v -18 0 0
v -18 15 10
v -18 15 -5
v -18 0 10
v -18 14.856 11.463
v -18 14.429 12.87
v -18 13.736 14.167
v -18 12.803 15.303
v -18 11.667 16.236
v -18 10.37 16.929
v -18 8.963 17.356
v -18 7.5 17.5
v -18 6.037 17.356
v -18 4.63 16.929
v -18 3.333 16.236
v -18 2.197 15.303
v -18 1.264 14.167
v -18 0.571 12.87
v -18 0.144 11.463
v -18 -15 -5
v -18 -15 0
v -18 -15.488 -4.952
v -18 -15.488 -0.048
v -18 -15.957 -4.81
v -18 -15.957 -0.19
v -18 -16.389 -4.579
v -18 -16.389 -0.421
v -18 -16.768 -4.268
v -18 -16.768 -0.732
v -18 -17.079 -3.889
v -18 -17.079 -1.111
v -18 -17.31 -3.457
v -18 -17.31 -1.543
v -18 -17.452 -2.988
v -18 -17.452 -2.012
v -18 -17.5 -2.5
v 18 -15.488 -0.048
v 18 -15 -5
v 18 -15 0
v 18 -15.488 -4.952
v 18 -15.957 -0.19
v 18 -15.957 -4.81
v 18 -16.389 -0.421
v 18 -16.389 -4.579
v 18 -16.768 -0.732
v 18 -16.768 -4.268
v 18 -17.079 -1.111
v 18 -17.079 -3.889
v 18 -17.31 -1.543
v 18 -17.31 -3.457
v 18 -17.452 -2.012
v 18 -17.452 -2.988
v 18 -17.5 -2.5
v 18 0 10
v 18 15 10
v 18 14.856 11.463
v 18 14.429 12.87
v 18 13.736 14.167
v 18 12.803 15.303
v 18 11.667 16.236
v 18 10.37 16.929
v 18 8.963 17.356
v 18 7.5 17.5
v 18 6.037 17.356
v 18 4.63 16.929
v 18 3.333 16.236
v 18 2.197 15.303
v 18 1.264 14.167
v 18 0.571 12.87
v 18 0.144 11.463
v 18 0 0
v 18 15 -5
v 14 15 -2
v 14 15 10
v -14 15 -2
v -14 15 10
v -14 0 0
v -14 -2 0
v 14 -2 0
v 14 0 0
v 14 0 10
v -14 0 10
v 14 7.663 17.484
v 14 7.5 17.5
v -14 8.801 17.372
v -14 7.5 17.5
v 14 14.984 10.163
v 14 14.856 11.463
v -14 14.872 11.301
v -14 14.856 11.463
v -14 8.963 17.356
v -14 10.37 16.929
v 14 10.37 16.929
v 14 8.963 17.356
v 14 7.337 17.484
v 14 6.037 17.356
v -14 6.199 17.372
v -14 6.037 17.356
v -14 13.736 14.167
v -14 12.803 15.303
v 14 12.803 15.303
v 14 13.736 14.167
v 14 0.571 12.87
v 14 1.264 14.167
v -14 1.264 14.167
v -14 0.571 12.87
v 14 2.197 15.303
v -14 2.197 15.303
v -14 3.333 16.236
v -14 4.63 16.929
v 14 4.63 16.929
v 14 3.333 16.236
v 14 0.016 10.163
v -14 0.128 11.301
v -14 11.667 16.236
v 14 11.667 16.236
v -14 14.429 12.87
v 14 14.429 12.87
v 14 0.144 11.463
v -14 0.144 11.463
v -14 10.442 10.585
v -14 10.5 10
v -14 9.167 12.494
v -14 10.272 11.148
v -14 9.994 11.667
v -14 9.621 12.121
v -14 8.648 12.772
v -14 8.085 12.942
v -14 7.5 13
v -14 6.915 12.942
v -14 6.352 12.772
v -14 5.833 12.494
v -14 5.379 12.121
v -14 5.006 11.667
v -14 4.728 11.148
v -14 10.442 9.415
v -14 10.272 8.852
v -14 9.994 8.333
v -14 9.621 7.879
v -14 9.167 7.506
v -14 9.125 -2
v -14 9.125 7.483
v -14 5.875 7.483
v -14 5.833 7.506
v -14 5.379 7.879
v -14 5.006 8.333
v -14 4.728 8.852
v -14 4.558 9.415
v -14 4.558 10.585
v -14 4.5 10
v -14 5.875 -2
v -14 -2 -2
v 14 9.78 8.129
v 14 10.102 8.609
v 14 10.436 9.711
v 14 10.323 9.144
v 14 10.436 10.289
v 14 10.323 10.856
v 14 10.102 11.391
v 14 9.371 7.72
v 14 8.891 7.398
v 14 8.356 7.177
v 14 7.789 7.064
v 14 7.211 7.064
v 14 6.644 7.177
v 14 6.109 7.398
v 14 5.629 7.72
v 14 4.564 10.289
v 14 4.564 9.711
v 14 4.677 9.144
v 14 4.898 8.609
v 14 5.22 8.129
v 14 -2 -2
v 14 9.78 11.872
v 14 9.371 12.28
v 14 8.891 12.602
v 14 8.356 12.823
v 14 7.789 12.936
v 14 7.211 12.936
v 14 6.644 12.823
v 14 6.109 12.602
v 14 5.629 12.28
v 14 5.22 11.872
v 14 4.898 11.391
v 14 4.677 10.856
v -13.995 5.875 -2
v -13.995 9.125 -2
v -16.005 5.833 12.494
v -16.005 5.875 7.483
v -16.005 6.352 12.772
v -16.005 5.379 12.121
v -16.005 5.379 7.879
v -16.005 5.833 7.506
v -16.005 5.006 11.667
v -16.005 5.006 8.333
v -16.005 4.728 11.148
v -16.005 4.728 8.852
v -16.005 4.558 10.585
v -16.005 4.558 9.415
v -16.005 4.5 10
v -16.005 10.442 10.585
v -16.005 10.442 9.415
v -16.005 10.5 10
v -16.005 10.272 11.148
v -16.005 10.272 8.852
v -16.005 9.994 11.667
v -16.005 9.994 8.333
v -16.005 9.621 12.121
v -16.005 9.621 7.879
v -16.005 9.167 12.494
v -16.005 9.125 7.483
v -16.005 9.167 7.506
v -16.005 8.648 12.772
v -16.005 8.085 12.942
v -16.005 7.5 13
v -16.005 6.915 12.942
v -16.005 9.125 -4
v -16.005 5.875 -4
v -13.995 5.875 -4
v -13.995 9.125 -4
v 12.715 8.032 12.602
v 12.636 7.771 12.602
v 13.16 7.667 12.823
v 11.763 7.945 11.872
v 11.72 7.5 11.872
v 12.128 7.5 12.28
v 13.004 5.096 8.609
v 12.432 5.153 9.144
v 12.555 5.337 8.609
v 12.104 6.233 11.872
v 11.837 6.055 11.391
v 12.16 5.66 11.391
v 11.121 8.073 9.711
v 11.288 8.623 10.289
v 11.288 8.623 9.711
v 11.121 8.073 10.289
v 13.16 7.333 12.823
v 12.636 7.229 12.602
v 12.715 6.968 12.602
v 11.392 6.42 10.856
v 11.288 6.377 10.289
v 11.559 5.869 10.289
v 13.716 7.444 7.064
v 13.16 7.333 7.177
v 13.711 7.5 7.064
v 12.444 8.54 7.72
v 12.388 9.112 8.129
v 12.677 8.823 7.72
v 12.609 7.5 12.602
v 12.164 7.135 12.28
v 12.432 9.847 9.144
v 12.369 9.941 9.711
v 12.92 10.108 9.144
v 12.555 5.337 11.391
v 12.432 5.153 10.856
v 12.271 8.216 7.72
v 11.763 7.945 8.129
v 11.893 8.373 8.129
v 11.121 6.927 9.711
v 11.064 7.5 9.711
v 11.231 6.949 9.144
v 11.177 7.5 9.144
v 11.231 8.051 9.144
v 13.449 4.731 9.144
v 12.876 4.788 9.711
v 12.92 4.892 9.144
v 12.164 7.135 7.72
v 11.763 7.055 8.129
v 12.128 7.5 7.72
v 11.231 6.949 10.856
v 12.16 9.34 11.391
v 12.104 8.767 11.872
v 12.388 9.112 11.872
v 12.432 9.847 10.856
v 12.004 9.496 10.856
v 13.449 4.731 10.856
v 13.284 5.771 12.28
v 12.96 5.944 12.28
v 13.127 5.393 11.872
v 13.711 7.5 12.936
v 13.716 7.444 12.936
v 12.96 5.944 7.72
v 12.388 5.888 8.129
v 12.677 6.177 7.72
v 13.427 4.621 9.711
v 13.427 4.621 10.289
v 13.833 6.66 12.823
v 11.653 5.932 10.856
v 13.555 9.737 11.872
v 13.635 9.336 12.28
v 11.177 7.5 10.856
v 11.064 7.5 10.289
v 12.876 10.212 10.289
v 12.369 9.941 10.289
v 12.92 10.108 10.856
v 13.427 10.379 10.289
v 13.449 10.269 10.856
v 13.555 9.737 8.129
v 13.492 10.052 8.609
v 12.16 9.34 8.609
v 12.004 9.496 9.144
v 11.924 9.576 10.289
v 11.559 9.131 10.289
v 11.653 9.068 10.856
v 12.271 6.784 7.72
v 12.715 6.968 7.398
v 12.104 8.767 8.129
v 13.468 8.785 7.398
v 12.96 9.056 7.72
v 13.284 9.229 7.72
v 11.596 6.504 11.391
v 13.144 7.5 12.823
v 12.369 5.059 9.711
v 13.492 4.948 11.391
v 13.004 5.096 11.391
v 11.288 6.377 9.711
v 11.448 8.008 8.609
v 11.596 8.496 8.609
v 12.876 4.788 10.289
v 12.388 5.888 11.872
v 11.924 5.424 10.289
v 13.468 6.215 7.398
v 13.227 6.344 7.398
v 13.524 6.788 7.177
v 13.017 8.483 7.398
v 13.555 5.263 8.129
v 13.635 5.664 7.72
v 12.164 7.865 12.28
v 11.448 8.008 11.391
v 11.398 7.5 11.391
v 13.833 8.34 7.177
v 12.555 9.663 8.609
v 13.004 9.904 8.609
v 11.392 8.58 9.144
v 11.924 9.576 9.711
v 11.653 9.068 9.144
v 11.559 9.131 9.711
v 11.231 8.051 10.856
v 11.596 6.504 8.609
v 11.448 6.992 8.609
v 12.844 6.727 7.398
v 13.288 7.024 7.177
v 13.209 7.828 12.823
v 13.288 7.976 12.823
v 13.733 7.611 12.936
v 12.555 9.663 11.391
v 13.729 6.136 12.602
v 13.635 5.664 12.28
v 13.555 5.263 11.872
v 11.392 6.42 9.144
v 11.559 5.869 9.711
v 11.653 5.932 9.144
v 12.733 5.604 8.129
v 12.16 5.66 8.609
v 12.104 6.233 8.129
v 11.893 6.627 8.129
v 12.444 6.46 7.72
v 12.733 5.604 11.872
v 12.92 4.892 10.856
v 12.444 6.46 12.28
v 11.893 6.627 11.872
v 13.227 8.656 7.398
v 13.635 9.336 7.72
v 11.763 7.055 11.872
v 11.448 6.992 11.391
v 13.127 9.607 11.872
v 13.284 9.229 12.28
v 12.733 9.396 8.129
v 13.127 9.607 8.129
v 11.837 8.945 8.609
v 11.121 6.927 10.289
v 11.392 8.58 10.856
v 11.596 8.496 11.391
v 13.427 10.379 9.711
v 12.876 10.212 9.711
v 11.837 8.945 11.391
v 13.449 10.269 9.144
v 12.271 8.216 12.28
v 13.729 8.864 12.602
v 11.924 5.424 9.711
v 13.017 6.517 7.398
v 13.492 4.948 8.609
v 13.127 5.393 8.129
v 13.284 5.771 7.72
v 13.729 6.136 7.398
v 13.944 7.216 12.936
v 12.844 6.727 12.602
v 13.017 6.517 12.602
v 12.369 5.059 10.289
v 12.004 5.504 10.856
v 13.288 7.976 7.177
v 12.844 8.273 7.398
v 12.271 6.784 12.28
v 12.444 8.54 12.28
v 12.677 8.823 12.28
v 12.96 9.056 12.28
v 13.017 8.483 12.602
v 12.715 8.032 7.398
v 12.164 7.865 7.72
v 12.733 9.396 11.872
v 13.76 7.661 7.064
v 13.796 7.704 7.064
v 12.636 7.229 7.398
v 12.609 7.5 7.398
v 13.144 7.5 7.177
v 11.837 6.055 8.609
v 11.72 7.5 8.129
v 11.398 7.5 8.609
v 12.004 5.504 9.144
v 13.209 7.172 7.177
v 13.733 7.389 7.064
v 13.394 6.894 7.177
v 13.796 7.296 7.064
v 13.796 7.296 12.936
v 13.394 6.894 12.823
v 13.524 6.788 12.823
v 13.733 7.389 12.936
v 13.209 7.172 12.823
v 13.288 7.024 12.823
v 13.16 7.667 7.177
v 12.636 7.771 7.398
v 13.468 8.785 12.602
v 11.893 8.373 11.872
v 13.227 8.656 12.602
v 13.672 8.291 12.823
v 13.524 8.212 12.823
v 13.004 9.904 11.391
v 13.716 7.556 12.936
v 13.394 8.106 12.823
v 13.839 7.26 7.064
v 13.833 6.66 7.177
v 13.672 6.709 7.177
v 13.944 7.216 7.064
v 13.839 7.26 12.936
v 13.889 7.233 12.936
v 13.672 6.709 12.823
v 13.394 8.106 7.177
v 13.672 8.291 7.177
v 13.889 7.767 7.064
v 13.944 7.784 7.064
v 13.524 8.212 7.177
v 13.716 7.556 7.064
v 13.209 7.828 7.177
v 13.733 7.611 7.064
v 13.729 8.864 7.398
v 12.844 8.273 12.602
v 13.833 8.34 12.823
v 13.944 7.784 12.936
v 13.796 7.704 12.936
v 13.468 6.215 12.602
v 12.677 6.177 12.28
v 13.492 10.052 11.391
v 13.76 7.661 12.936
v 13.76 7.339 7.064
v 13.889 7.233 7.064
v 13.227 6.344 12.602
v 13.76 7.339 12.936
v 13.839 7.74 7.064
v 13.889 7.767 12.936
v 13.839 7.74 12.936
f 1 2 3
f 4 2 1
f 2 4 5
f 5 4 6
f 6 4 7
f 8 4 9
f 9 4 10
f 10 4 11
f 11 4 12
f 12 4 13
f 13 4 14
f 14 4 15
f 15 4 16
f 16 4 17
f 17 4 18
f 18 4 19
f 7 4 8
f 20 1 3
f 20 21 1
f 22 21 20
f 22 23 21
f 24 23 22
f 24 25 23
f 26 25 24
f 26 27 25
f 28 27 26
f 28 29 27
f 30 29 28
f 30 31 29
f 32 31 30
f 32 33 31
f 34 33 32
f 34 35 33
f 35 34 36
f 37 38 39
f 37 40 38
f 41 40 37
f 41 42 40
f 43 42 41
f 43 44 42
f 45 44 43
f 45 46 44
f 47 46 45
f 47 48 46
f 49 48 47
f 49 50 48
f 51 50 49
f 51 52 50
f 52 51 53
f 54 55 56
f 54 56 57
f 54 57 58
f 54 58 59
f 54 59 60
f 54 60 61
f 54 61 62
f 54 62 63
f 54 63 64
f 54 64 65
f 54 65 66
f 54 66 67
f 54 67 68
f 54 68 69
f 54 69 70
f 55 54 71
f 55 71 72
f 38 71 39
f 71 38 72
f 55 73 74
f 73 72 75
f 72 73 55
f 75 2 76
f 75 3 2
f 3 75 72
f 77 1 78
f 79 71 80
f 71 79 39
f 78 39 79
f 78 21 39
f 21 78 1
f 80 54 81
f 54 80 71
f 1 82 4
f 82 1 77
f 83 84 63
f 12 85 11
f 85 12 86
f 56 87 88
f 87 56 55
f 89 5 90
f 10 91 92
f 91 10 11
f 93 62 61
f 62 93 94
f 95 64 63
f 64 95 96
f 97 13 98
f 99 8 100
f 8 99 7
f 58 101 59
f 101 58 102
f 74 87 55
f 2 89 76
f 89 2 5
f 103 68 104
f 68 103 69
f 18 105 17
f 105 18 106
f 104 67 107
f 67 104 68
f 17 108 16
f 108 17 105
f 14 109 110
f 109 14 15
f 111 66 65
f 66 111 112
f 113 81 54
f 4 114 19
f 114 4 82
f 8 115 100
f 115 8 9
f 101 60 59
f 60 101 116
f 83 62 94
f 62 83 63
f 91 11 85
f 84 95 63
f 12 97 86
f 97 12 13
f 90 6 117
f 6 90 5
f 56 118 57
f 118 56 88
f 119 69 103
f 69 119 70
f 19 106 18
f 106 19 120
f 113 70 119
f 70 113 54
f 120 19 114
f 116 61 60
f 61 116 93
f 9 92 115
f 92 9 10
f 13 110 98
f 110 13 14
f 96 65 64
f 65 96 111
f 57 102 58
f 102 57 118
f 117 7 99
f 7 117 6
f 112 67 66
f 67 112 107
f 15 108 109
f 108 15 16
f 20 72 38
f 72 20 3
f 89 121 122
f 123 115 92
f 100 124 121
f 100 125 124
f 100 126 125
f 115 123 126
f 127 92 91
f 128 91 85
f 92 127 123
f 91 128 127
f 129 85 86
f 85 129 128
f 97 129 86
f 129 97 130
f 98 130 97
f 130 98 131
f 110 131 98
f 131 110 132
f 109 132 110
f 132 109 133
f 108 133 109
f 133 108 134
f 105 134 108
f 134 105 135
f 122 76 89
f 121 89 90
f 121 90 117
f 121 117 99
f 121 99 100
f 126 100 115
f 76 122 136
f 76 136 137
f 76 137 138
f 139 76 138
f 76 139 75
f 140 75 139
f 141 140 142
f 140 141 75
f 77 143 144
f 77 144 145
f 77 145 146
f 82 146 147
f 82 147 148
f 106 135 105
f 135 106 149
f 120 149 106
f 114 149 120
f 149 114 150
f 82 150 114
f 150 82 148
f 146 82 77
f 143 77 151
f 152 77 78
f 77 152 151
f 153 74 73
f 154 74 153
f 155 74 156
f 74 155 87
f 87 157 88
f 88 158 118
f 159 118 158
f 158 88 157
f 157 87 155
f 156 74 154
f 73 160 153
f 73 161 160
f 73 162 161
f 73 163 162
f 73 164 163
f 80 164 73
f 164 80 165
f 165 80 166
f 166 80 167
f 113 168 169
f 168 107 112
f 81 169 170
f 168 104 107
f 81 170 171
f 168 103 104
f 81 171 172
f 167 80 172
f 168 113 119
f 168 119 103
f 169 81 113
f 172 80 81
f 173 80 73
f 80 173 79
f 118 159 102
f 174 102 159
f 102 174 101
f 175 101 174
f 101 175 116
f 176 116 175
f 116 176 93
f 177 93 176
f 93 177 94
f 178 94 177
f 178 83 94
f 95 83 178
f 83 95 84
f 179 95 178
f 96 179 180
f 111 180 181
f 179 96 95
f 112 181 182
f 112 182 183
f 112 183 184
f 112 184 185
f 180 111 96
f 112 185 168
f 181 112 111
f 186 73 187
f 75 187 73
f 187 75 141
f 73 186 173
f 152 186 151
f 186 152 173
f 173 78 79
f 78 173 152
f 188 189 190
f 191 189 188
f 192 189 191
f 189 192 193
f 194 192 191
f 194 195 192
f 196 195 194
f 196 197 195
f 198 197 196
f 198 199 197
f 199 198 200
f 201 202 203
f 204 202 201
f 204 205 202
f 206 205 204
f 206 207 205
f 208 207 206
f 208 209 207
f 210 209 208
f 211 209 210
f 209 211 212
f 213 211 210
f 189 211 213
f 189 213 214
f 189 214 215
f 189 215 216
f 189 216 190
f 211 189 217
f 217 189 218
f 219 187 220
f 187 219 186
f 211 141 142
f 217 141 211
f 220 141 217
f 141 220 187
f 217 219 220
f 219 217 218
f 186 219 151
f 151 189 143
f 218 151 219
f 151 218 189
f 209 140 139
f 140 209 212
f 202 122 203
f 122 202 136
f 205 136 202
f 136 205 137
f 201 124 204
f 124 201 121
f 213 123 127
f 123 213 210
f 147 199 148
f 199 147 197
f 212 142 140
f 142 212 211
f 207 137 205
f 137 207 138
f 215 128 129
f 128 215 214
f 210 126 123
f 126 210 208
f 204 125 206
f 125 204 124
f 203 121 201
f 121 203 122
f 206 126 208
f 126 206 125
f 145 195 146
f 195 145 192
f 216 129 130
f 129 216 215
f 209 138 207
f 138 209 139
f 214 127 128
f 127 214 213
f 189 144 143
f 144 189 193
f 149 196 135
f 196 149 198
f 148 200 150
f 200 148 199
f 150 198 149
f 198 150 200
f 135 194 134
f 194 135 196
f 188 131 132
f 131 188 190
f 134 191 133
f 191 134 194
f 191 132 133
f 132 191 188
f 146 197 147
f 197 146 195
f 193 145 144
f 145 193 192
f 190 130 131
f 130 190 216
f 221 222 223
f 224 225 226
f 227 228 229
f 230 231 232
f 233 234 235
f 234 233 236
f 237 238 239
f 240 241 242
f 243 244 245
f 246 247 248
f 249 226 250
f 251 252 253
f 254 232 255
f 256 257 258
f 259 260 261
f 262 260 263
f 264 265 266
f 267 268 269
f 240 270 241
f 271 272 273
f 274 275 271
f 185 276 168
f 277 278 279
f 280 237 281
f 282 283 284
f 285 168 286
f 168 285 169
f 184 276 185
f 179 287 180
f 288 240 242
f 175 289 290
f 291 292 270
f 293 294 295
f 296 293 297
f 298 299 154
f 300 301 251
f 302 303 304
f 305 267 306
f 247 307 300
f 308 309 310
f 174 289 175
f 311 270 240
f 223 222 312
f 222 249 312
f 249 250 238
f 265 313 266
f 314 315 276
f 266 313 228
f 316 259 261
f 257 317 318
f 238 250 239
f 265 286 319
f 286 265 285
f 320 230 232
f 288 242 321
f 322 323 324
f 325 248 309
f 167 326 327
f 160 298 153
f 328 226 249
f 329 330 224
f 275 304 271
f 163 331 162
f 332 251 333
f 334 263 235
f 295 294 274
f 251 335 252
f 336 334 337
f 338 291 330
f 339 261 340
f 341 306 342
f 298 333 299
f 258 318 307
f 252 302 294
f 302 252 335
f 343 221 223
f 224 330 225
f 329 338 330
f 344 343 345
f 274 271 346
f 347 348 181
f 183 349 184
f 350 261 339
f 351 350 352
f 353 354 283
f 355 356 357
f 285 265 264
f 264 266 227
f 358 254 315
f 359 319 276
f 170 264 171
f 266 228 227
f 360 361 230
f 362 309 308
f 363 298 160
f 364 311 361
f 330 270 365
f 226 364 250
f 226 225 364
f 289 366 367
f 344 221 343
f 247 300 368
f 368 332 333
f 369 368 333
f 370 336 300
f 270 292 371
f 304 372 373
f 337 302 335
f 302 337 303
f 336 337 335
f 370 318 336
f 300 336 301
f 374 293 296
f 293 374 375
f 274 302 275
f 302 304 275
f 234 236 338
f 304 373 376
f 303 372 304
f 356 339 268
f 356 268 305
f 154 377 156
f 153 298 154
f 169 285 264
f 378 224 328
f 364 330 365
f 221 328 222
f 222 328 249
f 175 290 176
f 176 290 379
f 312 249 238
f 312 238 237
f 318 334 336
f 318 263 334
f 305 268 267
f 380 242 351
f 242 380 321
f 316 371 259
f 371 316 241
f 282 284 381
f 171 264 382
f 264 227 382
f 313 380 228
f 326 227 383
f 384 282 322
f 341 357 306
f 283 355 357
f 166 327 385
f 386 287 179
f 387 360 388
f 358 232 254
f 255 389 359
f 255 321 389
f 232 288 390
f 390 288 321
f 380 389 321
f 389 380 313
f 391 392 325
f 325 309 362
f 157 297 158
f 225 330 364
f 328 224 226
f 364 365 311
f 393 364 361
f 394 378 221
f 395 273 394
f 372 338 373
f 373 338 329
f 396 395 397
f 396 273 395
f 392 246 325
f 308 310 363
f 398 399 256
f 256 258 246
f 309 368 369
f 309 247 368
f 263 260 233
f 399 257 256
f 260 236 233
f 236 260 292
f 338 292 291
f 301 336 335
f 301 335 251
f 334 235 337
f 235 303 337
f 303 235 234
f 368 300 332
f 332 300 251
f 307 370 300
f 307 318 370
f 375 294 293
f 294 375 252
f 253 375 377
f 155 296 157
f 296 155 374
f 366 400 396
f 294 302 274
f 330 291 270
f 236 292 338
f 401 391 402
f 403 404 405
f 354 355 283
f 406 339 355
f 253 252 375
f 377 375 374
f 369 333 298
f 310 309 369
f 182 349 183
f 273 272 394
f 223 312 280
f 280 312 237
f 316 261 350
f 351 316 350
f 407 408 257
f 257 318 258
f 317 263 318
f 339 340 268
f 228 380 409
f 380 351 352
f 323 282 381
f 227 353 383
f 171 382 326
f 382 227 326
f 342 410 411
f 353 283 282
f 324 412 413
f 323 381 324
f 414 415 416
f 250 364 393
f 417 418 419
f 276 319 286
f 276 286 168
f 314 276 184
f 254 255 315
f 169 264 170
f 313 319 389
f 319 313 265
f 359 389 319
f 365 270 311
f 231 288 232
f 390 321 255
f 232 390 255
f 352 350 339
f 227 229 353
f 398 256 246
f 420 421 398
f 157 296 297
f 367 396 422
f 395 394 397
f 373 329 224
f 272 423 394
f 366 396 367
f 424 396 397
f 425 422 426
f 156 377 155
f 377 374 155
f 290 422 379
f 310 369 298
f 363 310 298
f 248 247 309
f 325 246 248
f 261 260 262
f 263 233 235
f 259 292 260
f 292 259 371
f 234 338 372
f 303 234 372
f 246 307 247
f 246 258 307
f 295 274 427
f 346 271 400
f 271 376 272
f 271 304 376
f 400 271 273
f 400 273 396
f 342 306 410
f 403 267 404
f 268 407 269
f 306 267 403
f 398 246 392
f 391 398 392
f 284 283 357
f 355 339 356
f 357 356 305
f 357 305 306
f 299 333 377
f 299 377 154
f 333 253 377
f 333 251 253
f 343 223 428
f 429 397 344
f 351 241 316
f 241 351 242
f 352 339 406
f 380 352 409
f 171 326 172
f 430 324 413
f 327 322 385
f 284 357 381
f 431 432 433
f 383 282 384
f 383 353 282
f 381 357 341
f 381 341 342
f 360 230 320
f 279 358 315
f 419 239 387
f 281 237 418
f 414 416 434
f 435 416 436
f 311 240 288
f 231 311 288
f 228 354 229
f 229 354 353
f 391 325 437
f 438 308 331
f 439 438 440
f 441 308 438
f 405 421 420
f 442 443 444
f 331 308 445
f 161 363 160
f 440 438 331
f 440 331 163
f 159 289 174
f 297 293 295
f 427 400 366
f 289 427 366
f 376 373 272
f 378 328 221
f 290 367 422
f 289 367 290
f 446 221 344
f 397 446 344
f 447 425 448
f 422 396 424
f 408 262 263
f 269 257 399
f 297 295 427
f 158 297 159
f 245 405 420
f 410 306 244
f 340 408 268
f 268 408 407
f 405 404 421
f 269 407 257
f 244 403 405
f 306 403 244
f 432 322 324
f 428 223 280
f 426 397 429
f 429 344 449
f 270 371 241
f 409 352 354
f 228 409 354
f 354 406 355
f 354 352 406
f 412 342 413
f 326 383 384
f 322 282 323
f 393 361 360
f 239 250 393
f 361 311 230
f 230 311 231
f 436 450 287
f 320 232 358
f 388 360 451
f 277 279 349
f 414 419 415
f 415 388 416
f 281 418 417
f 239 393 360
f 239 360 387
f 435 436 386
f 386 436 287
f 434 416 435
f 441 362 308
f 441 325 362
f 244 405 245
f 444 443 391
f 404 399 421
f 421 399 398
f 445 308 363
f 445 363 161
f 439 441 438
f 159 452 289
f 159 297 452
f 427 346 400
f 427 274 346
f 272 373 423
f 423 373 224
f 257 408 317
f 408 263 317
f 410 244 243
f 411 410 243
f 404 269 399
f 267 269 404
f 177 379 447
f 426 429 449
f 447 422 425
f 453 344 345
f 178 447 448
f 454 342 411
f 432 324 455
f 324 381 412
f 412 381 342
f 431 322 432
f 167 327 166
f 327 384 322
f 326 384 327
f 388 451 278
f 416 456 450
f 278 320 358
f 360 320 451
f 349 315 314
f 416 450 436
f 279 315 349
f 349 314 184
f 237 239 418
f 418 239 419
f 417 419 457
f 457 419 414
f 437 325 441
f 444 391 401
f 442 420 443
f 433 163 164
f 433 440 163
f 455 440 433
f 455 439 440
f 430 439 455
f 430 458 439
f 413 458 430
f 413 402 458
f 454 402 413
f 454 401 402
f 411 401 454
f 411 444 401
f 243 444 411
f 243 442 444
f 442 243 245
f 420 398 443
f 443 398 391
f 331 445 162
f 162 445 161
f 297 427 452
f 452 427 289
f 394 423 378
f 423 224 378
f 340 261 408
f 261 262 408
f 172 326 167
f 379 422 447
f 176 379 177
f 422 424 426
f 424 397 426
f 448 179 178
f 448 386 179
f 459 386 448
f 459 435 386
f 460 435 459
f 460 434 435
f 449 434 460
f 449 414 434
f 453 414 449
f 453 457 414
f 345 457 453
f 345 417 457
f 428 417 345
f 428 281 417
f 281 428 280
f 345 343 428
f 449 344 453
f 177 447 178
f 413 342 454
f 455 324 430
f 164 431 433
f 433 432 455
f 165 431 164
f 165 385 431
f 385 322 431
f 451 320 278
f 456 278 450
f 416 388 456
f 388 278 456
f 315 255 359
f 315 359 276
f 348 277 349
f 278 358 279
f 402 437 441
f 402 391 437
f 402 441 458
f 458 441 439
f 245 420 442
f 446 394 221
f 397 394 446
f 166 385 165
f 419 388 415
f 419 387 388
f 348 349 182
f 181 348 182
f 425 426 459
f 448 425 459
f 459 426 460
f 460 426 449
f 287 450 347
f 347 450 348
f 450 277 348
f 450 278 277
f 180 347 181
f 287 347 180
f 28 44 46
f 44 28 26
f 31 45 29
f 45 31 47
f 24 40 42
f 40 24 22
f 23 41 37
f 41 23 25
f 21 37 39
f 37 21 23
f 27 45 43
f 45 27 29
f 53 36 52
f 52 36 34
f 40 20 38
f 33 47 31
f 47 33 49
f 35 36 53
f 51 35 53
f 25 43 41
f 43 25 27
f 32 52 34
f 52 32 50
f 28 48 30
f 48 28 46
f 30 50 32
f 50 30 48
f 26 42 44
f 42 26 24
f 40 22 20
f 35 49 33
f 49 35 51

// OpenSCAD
/* 
 * Copyright (c) 2017 by Paul-Louis Ageneau
 *
 * This program is free software: you can redistribute it and/or modify
 * it under the terms of the GNU General Public License as published by
 * the Free Software Foundation, either version 3 of the License, or
 * (at your option) any later version.
 *
 * This program is distributed in the hope that it will be useful,
 * but WITHOUT ANY WARRANTY; without even the implied warranty of
 * MERCHANTABILITY or FITNESS FOR A PARTICULAR PURPOSE.  See the
 * GNU General Public License for more details.
 *
 * You should have received a copy of the GNU General Public License
 * along with this program.  If not, see <http://www.gnu.org/licenses/>.
 */

leg_width = 28;
thickness = 5;
$fn = 32;

union() {
    difference() {
        union() {
            translate([0, 0, -thickness/2]) cube([leg_width+4*2, 30, thickness], center=true);
            translate([0, 7.5, 10/2]) union() {
                cube([leg_width+4*2, 15, 10], center=true);
                translate([0, 0, 5]) rotate([0, 90, 0]) cylinder(r = 15/2, h = leg_width+4*2, center = true);
            }
        }
        union() {
            translate([0, 7.5, 20/2]) cube([leg_width, 15+2*2, 20+2*2], center=true);
            translate([-leg_width/2-1, 7.5, 10-14/2]) cube([2+0.01, 3.25, 14], center=true);
            translate([-leg_width/2-1, 7.5, 10]) rotate([0, 90, 0]) cylinder(r = 3, h = 2+0.01, center = true);
        }
    }
    translate([leg_width/2, 7.5, 10]) sphere(r = 3-0.05);
    translate([0, -30/2, -5/2]) rotate([0, 90, 0]) cylinder(r = 5/2, h = leg_width+4*2, center = true);
}
